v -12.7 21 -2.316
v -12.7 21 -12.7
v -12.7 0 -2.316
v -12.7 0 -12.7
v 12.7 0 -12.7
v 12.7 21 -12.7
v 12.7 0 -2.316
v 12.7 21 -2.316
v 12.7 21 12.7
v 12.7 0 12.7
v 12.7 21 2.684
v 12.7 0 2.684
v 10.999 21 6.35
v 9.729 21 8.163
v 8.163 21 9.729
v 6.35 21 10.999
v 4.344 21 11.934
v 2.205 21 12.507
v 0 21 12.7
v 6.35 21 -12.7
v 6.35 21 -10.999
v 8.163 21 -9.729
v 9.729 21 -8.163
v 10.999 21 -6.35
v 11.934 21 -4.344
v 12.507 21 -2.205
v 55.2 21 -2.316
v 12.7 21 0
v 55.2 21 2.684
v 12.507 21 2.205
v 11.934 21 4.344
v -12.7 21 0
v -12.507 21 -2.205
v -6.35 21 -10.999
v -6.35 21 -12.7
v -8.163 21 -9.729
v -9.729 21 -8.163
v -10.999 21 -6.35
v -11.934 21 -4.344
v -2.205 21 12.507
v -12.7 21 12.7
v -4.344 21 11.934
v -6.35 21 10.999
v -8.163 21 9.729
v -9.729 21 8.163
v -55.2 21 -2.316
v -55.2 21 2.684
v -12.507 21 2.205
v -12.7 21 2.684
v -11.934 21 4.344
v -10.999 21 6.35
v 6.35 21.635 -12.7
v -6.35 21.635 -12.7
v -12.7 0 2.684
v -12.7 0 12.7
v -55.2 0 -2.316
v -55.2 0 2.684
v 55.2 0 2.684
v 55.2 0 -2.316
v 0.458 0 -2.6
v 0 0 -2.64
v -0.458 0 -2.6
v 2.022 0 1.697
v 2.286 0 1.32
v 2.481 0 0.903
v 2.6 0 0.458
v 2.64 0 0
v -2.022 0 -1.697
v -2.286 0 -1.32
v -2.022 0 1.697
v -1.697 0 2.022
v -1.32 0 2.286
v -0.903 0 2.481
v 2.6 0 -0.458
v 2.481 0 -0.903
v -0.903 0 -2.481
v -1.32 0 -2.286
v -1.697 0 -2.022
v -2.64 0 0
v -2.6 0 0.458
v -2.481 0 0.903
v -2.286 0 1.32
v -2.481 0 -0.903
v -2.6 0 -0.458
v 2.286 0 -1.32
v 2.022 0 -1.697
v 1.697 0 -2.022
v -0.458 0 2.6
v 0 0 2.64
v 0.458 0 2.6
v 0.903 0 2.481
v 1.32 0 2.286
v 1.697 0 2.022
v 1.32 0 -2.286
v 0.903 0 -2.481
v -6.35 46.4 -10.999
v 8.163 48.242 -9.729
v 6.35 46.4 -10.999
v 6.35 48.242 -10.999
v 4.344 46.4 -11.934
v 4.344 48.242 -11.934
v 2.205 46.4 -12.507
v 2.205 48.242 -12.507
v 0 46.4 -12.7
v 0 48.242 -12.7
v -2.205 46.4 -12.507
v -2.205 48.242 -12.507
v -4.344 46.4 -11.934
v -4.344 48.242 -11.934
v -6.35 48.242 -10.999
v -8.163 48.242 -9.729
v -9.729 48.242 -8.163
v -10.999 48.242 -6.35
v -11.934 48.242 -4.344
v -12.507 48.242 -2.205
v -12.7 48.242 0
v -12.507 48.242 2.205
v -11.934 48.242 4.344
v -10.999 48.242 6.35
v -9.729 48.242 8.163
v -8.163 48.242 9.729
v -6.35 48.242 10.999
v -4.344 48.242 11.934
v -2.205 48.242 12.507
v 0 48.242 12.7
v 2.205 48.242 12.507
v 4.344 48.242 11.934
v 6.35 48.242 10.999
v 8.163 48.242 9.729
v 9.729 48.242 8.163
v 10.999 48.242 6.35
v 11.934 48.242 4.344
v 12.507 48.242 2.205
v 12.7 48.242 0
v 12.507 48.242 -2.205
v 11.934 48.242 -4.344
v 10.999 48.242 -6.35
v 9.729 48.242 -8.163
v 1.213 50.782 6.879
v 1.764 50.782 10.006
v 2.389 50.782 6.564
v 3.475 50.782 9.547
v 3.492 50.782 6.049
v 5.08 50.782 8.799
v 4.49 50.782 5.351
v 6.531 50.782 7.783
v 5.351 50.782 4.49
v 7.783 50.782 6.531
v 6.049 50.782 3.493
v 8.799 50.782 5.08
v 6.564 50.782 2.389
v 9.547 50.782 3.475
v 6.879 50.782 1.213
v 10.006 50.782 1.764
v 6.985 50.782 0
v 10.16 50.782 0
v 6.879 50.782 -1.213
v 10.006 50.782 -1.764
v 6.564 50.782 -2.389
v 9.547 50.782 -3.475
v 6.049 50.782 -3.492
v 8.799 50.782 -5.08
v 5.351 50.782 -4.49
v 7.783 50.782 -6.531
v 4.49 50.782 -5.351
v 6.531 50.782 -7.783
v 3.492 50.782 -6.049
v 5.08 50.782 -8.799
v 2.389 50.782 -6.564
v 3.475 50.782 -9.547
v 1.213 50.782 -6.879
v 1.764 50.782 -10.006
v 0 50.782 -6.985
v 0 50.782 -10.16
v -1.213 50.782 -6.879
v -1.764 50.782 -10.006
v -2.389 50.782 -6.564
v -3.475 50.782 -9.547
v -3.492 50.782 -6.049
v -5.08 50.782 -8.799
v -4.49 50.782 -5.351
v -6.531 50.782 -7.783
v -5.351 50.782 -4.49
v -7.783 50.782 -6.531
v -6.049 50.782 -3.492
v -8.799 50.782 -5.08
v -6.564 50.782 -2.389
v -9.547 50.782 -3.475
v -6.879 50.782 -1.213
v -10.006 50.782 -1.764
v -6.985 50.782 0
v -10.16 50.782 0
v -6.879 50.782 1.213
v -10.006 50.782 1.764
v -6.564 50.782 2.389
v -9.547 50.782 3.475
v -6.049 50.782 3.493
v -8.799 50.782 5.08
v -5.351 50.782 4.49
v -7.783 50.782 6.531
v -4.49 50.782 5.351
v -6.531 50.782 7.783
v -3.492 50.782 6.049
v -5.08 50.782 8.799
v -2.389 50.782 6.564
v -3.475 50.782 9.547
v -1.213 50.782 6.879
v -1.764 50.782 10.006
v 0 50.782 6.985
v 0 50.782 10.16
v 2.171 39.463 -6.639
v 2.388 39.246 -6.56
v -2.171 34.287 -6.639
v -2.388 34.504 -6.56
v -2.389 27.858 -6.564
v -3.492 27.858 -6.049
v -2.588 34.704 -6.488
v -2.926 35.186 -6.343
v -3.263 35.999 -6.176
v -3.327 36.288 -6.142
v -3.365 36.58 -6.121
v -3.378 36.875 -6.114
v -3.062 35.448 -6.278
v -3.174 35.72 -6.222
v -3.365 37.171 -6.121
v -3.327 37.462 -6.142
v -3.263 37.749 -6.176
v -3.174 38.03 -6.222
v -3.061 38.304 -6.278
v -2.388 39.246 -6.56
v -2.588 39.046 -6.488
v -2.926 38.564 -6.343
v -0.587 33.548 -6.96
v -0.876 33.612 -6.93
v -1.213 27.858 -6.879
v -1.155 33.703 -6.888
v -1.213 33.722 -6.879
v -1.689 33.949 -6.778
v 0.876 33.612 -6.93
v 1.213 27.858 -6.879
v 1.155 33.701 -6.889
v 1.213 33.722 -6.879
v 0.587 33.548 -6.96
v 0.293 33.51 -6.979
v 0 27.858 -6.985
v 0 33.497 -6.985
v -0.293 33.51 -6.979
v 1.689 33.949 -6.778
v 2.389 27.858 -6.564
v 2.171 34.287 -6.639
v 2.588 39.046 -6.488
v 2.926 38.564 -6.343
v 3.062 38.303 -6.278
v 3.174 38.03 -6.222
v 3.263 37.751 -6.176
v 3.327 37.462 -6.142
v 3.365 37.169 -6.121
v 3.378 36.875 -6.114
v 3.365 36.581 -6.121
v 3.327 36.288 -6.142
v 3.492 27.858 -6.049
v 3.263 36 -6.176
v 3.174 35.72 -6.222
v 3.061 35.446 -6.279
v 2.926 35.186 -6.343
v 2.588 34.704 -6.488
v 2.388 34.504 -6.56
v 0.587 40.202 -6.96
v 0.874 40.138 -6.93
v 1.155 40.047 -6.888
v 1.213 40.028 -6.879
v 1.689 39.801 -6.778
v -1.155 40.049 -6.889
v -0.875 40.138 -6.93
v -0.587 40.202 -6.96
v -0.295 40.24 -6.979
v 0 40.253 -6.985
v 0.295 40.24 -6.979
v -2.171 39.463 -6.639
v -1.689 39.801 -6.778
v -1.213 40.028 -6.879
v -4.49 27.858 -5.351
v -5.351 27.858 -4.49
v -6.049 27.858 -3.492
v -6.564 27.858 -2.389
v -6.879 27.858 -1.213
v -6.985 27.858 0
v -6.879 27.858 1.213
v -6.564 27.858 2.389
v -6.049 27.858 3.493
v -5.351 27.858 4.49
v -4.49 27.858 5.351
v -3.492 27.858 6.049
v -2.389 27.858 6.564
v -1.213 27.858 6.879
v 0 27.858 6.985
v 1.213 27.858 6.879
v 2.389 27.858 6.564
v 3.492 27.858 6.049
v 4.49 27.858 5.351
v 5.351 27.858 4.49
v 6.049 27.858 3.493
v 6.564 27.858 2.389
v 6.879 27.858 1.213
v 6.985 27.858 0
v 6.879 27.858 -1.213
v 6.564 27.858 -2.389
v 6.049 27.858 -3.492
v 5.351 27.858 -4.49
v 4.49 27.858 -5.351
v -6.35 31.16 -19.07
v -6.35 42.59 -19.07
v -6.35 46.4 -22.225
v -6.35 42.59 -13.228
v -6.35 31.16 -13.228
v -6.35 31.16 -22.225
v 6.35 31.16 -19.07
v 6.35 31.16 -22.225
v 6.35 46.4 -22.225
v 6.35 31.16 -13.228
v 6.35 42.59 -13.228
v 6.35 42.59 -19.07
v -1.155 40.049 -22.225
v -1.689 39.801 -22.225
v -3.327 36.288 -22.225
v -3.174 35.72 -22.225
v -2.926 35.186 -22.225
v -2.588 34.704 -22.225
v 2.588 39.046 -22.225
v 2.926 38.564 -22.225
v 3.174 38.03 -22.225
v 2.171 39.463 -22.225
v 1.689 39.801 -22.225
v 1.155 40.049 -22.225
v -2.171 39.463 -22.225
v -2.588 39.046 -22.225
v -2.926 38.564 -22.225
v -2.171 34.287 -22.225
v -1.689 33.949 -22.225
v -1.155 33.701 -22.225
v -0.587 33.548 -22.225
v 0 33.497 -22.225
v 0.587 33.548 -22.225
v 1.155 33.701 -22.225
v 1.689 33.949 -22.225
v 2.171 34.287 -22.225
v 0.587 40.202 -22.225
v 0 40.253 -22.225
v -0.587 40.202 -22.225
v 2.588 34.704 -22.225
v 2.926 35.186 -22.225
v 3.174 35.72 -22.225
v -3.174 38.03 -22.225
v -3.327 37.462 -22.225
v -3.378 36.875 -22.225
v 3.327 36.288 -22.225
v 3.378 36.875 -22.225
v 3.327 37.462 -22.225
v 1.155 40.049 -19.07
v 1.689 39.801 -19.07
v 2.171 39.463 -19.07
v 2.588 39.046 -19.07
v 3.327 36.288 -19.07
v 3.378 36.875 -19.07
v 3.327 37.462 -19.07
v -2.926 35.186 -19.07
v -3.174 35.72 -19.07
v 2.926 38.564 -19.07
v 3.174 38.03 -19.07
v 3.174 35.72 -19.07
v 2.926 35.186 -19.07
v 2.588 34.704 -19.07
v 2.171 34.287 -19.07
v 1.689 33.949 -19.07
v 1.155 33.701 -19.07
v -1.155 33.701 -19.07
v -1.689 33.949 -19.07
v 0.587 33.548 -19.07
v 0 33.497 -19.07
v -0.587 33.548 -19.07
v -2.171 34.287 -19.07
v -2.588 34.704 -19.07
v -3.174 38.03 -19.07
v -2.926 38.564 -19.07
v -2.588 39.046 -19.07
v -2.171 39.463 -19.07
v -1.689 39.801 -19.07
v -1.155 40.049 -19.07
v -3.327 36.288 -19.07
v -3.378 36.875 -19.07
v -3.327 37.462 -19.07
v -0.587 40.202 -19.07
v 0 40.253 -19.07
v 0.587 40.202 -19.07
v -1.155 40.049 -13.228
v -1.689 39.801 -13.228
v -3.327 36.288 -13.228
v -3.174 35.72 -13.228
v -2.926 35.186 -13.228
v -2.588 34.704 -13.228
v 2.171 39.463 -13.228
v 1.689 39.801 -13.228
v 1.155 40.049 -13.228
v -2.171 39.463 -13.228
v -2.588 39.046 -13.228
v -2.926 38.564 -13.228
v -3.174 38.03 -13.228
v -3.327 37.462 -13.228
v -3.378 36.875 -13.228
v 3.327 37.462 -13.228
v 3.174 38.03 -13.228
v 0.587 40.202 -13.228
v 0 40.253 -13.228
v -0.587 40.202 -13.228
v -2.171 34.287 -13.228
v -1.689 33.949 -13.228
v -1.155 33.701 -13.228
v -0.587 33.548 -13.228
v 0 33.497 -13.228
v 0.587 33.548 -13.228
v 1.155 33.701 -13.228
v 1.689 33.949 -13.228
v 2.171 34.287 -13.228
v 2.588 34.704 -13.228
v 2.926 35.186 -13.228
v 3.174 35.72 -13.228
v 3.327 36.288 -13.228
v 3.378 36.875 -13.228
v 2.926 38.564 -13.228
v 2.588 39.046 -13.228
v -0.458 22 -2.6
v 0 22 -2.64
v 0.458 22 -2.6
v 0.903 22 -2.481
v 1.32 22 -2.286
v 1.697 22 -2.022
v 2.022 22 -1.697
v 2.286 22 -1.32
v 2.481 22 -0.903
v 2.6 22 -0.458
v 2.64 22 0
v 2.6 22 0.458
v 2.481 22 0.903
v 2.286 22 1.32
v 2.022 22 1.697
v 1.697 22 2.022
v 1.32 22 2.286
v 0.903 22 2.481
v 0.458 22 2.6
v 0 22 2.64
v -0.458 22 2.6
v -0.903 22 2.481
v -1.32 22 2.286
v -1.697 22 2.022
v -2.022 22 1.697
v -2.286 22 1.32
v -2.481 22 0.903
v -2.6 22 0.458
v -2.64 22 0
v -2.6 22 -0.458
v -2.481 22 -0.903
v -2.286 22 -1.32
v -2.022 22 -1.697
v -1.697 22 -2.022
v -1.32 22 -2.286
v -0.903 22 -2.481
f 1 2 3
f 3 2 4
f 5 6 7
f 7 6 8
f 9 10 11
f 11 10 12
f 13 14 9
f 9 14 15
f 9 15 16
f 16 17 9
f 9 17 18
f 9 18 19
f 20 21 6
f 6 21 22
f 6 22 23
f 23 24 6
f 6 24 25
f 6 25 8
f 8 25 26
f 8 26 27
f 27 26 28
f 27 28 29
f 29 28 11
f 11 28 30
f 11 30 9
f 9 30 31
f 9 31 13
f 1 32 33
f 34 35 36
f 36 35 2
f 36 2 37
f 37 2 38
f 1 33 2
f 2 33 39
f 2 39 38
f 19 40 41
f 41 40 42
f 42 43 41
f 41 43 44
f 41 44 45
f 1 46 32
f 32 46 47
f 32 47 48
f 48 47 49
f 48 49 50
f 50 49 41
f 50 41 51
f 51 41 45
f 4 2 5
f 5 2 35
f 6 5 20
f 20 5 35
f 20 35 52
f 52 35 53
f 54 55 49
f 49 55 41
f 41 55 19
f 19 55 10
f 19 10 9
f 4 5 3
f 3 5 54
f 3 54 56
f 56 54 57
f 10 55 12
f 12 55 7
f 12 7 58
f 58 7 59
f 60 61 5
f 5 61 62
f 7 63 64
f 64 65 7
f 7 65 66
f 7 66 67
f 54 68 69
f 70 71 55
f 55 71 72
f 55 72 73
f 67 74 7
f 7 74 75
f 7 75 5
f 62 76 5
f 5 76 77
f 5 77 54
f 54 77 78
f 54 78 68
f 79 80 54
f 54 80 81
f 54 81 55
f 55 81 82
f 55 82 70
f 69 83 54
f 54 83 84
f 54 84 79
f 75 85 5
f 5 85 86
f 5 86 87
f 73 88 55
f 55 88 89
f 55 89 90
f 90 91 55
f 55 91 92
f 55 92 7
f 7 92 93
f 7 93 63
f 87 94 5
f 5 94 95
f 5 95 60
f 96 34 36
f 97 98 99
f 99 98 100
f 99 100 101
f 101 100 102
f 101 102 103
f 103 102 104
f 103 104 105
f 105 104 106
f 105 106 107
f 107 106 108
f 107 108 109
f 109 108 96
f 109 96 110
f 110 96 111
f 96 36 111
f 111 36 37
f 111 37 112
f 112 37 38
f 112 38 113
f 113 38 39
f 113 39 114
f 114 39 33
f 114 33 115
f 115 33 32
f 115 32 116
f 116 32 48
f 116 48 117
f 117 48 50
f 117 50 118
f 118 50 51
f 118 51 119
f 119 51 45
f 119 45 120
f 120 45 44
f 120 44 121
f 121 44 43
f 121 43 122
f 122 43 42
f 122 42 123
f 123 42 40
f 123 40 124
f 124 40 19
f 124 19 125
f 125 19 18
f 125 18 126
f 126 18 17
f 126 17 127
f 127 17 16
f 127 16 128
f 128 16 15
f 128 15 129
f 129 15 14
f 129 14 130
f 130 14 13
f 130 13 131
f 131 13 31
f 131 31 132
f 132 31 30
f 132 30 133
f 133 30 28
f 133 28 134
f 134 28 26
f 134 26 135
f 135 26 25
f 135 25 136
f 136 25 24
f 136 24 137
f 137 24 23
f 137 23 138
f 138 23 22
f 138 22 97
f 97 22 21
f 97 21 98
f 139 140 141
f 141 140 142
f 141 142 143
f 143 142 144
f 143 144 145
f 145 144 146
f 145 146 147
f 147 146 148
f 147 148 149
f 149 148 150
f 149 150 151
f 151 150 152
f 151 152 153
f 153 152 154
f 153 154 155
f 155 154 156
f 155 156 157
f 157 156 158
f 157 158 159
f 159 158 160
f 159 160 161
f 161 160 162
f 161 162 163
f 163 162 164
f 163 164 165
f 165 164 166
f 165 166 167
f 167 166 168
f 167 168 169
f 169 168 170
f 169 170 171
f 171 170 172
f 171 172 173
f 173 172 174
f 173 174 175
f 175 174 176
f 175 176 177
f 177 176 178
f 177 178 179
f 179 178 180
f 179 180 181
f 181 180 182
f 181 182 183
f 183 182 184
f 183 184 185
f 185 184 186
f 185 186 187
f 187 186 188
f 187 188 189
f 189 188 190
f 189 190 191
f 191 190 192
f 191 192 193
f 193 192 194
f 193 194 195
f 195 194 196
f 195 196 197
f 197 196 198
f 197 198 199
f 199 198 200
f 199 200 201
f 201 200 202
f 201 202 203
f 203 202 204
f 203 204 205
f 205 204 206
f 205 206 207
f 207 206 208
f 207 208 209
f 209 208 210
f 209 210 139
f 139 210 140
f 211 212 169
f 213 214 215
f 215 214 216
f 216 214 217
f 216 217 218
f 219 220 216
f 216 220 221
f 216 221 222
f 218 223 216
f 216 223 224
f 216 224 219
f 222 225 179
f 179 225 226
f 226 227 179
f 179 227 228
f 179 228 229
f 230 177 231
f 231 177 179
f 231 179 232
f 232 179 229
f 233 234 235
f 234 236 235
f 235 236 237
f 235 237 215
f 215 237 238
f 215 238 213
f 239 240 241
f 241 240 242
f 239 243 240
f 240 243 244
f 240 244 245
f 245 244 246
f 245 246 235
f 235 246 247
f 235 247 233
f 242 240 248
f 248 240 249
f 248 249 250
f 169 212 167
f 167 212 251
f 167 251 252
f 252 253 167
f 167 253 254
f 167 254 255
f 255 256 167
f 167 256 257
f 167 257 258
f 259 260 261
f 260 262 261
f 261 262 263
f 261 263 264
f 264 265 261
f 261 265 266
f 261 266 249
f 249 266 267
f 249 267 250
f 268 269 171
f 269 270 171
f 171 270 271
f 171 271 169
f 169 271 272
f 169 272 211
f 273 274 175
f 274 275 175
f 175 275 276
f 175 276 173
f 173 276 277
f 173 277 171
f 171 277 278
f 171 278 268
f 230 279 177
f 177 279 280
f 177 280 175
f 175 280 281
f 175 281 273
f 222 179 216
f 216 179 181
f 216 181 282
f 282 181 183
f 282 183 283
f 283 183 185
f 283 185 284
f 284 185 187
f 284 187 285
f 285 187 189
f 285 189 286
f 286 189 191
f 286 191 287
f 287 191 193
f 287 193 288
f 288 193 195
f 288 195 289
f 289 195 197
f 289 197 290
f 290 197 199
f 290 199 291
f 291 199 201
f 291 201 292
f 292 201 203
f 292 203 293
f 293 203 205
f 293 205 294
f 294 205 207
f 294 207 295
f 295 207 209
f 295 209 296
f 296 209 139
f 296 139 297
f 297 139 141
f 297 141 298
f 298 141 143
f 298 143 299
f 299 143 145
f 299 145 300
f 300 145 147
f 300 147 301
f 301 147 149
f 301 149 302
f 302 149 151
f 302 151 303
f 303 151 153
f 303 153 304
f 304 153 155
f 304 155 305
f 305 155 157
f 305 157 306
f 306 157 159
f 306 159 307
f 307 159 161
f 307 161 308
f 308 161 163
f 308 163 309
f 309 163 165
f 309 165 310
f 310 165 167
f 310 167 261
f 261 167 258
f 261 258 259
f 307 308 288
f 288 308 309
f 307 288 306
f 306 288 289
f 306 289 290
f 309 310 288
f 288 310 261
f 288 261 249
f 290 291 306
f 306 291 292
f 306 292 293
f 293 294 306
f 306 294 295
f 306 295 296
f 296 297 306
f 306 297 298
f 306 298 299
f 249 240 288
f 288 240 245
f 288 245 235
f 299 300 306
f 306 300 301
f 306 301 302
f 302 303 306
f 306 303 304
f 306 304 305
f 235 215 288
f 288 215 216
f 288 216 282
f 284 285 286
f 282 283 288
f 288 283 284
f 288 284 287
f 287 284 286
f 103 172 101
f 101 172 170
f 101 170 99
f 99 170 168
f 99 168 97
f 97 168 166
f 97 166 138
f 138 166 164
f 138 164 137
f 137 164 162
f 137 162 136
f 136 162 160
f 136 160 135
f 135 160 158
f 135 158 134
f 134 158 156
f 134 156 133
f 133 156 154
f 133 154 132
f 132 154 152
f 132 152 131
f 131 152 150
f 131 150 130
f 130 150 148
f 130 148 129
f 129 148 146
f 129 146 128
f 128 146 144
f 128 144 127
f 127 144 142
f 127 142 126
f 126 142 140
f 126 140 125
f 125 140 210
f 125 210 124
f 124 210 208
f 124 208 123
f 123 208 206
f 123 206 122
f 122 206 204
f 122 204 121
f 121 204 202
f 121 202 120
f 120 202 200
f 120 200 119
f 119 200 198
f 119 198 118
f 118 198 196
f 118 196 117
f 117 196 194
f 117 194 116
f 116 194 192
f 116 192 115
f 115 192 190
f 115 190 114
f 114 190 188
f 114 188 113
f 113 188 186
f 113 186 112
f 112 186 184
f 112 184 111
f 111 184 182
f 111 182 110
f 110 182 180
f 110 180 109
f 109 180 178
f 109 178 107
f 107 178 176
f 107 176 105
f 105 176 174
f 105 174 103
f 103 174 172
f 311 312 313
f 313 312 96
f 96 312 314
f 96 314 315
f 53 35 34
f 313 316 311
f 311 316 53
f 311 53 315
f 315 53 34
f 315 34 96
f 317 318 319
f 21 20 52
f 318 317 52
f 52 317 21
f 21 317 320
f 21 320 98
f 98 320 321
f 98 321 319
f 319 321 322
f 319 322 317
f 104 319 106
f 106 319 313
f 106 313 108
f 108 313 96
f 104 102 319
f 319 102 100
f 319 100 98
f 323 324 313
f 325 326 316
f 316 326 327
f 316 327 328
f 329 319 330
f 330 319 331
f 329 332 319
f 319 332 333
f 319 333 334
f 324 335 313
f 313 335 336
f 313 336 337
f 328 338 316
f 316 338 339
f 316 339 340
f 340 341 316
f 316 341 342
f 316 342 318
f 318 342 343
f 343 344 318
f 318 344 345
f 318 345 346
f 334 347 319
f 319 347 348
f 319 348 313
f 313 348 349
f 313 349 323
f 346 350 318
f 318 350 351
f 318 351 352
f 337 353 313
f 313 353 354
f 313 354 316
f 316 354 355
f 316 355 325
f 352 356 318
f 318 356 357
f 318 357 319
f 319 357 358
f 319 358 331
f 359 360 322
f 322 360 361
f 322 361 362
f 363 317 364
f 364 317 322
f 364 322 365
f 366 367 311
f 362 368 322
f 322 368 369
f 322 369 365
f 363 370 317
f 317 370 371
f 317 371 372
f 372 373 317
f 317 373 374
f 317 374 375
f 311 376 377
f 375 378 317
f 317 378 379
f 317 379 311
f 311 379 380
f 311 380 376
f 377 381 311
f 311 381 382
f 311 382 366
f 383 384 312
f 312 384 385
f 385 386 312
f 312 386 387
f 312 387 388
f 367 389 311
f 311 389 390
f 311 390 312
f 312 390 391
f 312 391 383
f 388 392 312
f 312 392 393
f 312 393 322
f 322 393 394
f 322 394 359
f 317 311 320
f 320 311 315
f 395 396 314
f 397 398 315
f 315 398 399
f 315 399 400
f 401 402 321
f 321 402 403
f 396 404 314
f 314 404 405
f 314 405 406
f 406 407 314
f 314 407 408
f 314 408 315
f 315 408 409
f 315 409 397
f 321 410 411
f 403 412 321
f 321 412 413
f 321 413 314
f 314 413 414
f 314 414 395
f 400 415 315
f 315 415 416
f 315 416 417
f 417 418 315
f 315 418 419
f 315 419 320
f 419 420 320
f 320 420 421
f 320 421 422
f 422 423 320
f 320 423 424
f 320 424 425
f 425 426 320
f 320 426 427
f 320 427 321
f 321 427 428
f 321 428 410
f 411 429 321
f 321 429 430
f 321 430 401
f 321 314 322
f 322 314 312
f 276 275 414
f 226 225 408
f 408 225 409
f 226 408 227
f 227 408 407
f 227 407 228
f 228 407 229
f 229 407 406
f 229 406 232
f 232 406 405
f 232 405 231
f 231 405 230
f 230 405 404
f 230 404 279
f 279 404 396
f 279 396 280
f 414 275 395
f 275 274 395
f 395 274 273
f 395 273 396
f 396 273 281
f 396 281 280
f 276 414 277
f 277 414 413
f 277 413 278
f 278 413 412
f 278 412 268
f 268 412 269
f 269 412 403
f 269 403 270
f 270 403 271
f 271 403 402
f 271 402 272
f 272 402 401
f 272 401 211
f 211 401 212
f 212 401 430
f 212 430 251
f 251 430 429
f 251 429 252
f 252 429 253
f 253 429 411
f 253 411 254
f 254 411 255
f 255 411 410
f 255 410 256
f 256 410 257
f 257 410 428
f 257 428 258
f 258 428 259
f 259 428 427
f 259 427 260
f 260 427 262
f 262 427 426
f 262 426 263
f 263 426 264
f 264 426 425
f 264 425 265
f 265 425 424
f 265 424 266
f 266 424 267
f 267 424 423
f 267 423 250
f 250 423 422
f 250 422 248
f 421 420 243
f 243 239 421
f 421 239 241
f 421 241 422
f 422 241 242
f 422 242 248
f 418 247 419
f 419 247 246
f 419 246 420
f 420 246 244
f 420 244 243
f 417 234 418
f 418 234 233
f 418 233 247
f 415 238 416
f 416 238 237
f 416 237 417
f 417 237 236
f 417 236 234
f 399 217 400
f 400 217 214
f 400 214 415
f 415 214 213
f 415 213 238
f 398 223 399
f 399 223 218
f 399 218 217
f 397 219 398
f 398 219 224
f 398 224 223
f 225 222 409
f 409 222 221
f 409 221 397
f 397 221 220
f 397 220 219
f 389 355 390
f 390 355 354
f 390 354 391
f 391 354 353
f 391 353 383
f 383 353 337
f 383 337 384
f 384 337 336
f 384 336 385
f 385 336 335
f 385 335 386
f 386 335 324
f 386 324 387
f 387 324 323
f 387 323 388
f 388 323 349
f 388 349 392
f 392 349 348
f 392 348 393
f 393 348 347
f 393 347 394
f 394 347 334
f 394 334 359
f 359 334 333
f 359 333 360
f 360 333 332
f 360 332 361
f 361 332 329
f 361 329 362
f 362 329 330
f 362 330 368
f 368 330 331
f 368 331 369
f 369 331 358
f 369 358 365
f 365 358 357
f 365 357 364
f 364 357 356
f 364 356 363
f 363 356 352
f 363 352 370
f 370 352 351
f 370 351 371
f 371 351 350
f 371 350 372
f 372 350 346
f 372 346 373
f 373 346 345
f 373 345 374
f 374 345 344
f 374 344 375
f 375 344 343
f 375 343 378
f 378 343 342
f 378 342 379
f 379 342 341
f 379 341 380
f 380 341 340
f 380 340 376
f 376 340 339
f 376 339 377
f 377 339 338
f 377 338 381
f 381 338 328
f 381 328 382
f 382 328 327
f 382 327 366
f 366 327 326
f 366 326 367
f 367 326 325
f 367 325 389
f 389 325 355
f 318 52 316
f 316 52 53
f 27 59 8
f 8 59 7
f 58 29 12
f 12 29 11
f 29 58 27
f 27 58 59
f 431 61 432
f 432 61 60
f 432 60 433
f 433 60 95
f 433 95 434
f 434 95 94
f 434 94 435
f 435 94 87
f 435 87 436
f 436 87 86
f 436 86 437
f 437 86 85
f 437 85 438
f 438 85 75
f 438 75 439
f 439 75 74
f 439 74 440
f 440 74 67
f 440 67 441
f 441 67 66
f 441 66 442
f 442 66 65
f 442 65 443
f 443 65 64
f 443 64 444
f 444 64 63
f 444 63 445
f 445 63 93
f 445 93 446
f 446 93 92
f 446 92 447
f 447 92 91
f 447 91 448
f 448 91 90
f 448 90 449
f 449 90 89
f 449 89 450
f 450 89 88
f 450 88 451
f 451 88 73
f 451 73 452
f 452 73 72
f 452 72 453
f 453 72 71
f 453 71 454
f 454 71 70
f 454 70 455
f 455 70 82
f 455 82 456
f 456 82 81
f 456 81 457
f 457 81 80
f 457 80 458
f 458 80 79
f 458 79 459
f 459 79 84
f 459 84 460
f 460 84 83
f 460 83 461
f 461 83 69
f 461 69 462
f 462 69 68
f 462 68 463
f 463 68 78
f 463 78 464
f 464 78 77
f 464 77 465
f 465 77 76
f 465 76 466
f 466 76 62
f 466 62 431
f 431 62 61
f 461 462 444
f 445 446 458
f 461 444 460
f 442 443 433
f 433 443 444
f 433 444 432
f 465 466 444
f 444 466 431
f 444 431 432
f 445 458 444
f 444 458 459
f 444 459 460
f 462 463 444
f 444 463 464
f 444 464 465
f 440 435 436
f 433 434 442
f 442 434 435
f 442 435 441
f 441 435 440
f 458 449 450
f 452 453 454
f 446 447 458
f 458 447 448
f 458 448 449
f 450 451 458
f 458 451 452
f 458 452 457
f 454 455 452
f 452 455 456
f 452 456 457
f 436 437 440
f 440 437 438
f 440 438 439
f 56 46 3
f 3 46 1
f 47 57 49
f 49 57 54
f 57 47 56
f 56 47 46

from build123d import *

# Parameters (mm, degrees)
SKETCH1_W                   = 25.4
SKETCH1_H                   = 25.4
BOSS_EXTRUDE1_DEPTH         = 21
SKETCH8_W                   = 2.902818519
SKETCH8_H                   = 9.580147983
BOSS_EXTRUDE4_DEPTH         = 25.4
SKETCH10_R                  = 12.7
BOSS_EXTRUDE5_DEPTH         = 29.7815
SKETCH12_R                  = 6.985
CUT_EXTRUDE2_DEPTH          = 22.9235
CHAMFER1_SIZE               = 2.54
SKETCH14_W                  = 12.7
SKETCH14_H                  = 25.4
BOSS_EXTRUDE6_DEPTH         = 15.24
CUT_EXTRUDE3_REACH          = 60.614
SKETCH18_W                  = 5.842
SKETCH18_H                  = 11.43
F_1_4_CLEARANCE_HOLE2_D     = 6.7564
F_1_4_CLEARANCE_HOLE2_DEPTH = 20.32
F_1_4_CLEARANCE_HOLE2_TIP   = 2.029827343
CHAMFER2_SIZE               = 10.16
SKETCH21_W                  = 5
SKETCH21_H                  = 21
BOSS_EXTRUDE7_DEPTH         = 42.5
SKETCH22_R                  = 2.64
CUT_EXTRUDE4_DEPTH          = 22


with BuildPart() as part:
    # Sketch1 → Boss-Extrude1 (new body)
    with BuildSketch(Plane(origin=(0, 0, 0), x_dir=(1, 0, 0), z_dir=(0, 1, 0))):
        Rectangle(SKETCH1_W, SKETCH1_H)
    extrude(amount=BOSS_EXTRUDE1_DEPTH)

    # Sketch8 → Boss-Extrude4 (add, through all)
    with BuildSketch(Plane.XY.offset(12.7)):
        with Locations((-1.45140926, 4.790073991)):
            Rectangle(SKETCH8_W, SKETCH8_H)
    extrude(amount=-BOSS_EXTRUDE4_DEPTH)

    # Sketch10 → Boss-Extrude5 (add)
    with BuildSketch(Plane(origin=(0, 21, 0), x_dir=(1, 0, 0), z_dir=(0, 1, 0))):
        with Locations(Location((0, 0, 0), (0, 0, 270))):
            Circle(SKETCH10_R)
    extrude(amount=BOSS_EXTRUDE5_DEPTH)

    # Sketch12 → Cut-Extrude2 (cut)
    with BuildSketch(Plane(origin=(0, 50.7815, 0), x_dir=(1, 0, 0), z_dir=(0, 1, 0))):
        with Locations(Location((0, 0, 0), (0, 0, 270))):
            Circle(SKETCH12_R)
    extrude(amount=-CUT_EXTRUDE2_DEPTH, mode=Mode.SUBTRACT)

    # Chamfer1
    chamfer1_edges = [part.edges().sort_by_distance(p)[0] for p in [
        (0, 50.7815, -12.7),
    ]]
    chamfer(chamfer1_edges, length=CHAMFER1_SIZE)

    # Sketch14 → Boss-Extrude6 (add)
    with BuildSketch(Plane.XY.offset(-6.985)):
        with Locations((0, 33.7)):
            Rectangle(SKETCH14_W, SKETCH14_H)
    extrude(amount=-BOSS_EXTRUDE6_DEPTH)

    # Sketch18 → Cut-Extrude3 (cut, up to next)
    with BuildSketch(Plane(origin=(6.35, 0, 0), x_dir=(0, 0, -1), z_dir=(1, 0, 0)), mode=Mode.PRIVATE) as cut_extrude3_sk1:
        with Locations((16.149395763, 36.875)):
            Rectangle(SKETCH18_W, SKETCH18_H)
    cut_extrude3_tool1 = extrude(cut_extrude3_sk1.sketch, amount=-CUT_EXTRUDE3_REACH, mode=Mode.PRIVATE) & part.part
    add(cut_extrude3_tool1.solids().sort_by_distance((6.35, 36.875, -16.149396))[0], mode=Mode.SUBTRACT)

    # 1/4 Clearance Hole2
    with Locations(Plane(origin=(0, 0, -22.225), x_dir=(-1, 0, 0), z_dir=(0, 0, -1))):
        with Locations((0, 36.875)):
            Hole(F_1_4_CLEARANCE_HOLE2_D / 2, depth=F_1_4_CLEARANCE_HOLE2_DEPTH)
            with Locations((0, 0, -(F_1_4_CLEARANCE_HOLE2_DEPTH + F_1_4_CLEARANCE_HOLE2_TIP / 2))):  # 118° drill point
                Cone(0, F_1_4_CLEARANCE_HOLE2_D / 2, F_1_4_CLEARANCE_HOLE2_TIP, mode=Mode.SUBTRACT)

    # Chamfer2
    # the kernel refuses this chamfer: 10.16 mm, written as the material it takes off along each edge
    with BuildSketch(Plane(origin=(32.478299158, 21, -22.225), x_dir=(0, 0.9996219169112968, -0.027495876610586268), z_dir=(-1, 0, 0))) as chamfer2_piece_1_section:
        Polygon((CHAMFER2_SIZE * 0.999621916911, -CHAMFER2_SIZE * 0.0274958766106), (-CHAMFER2_SIZE * 0.0274958766106, -CHAMFER2_SIZE * 0.999621916911), (0, 0), align=None)
    chamfer2_piece_1 = extrude(amount=64.956598315, mode=Mode.PRIVATE)
    chamfer2_piece_1 = split(chamfer2_piece_1, bisect_by=Plane(origin=(0, 24.386079735, -12.7), z_dir=(0, 0, -1)), keep=Keep.TOP, mode=Mode.PRIVATE)
    add(chamfer2_piece_1, mode=Mode.SUBTRACT)

    # Sketch21 → Boss-Extrude7 (add)
    with BuildSketch(Plane(origin=(12.7, 0, 0), x_dir=(0, 0, -1), z_dir=(1, 0, 0))):
        with Locations((-0.183594793, 10.5)):
            Rectangle(SKETCH21_W, SKETCH21_H)
    boss_extrude7 = extrude(amount=BOSS_EXTRUDE7_DEPTH)

    # Sketch22 → Cut-Extrude4 (cut)
    with BuildSketch(Plane(origin=(0, 0, 0), x_dir=(-1, 0, 0), z_dir=(0, -1, 0))):
        with Locations(Location((0, 0, 0), (0, 0, 90))):
            Circle(SKETCH22_R)
    extrude(amount=-CUT_EXTRUDE4_DEPTH, mode=Mode.SUBTRACT)

    # Mirror1: Boss-Extrude7 across plane
    add(boss_extrude7.mirror(Plane(origin=(0, 0, 0), x_dir=(0, 0, 1), z_dir=(1, 0, 0))))


solid = part.part
